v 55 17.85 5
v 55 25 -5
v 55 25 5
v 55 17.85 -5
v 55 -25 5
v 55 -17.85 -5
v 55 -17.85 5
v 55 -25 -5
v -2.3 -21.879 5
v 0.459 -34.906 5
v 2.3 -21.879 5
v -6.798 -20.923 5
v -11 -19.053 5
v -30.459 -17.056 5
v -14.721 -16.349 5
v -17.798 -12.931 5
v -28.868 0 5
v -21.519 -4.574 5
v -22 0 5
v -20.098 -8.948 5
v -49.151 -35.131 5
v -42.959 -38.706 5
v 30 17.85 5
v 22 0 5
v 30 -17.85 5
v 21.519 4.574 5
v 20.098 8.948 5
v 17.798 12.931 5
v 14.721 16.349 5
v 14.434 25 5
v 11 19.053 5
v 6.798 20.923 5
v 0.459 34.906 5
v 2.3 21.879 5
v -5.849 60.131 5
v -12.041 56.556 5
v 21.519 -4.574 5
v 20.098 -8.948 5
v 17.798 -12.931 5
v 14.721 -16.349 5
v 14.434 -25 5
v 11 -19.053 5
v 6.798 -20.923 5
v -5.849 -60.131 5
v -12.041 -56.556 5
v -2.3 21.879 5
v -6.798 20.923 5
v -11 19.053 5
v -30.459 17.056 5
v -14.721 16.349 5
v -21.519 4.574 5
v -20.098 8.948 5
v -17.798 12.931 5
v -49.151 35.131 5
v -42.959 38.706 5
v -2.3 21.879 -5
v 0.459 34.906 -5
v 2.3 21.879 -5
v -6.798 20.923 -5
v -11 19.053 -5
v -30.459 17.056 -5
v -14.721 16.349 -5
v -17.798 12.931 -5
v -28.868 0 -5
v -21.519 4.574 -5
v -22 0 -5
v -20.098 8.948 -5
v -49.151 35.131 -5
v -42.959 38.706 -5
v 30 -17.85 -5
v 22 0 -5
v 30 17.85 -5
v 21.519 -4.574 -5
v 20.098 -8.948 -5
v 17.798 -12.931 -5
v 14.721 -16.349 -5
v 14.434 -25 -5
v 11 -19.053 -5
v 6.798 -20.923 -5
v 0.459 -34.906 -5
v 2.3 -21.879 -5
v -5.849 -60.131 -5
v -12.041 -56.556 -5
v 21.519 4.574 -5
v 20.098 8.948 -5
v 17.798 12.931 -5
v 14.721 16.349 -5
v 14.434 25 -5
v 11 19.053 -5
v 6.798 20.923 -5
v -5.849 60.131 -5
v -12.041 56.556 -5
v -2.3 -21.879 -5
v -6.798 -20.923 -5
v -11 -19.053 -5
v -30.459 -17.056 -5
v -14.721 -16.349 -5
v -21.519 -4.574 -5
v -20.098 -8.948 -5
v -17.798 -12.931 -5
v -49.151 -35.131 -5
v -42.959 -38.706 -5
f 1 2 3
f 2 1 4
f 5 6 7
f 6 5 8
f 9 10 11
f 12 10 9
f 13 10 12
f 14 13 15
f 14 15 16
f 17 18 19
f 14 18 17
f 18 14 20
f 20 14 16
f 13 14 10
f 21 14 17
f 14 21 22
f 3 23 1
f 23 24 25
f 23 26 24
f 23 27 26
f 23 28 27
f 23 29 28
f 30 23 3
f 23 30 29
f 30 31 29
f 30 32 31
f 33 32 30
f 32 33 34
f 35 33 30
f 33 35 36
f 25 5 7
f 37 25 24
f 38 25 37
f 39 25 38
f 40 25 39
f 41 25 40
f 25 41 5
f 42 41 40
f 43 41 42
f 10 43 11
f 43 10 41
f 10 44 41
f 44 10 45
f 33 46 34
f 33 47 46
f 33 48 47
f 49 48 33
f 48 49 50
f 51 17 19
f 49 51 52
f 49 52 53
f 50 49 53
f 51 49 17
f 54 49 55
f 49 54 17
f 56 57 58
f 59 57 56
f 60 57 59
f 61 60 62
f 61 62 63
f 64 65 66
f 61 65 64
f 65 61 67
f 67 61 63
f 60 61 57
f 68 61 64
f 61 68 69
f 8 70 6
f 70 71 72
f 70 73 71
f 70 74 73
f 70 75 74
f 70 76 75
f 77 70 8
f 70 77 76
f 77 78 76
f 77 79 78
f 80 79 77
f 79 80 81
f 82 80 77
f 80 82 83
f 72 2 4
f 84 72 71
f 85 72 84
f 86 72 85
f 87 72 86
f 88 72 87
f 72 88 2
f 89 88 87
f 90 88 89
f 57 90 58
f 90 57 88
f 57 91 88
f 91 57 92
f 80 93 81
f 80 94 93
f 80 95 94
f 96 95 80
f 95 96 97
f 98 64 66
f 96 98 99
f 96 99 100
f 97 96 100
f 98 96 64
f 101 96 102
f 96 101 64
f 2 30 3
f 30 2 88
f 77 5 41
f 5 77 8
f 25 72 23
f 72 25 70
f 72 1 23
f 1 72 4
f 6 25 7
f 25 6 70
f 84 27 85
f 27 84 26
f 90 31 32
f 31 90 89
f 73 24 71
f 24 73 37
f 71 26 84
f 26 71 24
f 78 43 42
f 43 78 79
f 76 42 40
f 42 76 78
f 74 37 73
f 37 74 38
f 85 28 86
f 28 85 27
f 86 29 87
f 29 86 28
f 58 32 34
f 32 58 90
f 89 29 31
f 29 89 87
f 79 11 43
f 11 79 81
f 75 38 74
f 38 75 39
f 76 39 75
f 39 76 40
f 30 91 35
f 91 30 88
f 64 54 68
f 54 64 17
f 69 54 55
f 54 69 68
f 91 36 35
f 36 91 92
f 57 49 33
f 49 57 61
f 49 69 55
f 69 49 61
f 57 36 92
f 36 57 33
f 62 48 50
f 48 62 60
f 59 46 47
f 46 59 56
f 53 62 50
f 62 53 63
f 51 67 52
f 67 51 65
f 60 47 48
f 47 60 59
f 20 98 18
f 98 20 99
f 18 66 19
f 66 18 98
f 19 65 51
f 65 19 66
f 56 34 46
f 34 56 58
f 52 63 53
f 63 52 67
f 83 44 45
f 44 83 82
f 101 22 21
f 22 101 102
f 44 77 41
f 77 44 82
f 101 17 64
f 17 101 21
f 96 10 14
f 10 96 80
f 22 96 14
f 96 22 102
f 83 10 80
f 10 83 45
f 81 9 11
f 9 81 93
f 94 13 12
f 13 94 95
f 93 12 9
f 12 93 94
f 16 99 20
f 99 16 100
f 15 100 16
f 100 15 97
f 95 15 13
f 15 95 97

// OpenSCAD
for ( i = [0 : 2] ){
    difference() {
        rotate([0, 0, 120*i]) translate([30, 0, 0]) cube([50, 50, 10], true);
        rotate([0, 0, 120*i]) translate([60, 0, 0]) cube([60, 35.7, 20], true);
        cylinder(30, 22, 22, true);
    }
}
